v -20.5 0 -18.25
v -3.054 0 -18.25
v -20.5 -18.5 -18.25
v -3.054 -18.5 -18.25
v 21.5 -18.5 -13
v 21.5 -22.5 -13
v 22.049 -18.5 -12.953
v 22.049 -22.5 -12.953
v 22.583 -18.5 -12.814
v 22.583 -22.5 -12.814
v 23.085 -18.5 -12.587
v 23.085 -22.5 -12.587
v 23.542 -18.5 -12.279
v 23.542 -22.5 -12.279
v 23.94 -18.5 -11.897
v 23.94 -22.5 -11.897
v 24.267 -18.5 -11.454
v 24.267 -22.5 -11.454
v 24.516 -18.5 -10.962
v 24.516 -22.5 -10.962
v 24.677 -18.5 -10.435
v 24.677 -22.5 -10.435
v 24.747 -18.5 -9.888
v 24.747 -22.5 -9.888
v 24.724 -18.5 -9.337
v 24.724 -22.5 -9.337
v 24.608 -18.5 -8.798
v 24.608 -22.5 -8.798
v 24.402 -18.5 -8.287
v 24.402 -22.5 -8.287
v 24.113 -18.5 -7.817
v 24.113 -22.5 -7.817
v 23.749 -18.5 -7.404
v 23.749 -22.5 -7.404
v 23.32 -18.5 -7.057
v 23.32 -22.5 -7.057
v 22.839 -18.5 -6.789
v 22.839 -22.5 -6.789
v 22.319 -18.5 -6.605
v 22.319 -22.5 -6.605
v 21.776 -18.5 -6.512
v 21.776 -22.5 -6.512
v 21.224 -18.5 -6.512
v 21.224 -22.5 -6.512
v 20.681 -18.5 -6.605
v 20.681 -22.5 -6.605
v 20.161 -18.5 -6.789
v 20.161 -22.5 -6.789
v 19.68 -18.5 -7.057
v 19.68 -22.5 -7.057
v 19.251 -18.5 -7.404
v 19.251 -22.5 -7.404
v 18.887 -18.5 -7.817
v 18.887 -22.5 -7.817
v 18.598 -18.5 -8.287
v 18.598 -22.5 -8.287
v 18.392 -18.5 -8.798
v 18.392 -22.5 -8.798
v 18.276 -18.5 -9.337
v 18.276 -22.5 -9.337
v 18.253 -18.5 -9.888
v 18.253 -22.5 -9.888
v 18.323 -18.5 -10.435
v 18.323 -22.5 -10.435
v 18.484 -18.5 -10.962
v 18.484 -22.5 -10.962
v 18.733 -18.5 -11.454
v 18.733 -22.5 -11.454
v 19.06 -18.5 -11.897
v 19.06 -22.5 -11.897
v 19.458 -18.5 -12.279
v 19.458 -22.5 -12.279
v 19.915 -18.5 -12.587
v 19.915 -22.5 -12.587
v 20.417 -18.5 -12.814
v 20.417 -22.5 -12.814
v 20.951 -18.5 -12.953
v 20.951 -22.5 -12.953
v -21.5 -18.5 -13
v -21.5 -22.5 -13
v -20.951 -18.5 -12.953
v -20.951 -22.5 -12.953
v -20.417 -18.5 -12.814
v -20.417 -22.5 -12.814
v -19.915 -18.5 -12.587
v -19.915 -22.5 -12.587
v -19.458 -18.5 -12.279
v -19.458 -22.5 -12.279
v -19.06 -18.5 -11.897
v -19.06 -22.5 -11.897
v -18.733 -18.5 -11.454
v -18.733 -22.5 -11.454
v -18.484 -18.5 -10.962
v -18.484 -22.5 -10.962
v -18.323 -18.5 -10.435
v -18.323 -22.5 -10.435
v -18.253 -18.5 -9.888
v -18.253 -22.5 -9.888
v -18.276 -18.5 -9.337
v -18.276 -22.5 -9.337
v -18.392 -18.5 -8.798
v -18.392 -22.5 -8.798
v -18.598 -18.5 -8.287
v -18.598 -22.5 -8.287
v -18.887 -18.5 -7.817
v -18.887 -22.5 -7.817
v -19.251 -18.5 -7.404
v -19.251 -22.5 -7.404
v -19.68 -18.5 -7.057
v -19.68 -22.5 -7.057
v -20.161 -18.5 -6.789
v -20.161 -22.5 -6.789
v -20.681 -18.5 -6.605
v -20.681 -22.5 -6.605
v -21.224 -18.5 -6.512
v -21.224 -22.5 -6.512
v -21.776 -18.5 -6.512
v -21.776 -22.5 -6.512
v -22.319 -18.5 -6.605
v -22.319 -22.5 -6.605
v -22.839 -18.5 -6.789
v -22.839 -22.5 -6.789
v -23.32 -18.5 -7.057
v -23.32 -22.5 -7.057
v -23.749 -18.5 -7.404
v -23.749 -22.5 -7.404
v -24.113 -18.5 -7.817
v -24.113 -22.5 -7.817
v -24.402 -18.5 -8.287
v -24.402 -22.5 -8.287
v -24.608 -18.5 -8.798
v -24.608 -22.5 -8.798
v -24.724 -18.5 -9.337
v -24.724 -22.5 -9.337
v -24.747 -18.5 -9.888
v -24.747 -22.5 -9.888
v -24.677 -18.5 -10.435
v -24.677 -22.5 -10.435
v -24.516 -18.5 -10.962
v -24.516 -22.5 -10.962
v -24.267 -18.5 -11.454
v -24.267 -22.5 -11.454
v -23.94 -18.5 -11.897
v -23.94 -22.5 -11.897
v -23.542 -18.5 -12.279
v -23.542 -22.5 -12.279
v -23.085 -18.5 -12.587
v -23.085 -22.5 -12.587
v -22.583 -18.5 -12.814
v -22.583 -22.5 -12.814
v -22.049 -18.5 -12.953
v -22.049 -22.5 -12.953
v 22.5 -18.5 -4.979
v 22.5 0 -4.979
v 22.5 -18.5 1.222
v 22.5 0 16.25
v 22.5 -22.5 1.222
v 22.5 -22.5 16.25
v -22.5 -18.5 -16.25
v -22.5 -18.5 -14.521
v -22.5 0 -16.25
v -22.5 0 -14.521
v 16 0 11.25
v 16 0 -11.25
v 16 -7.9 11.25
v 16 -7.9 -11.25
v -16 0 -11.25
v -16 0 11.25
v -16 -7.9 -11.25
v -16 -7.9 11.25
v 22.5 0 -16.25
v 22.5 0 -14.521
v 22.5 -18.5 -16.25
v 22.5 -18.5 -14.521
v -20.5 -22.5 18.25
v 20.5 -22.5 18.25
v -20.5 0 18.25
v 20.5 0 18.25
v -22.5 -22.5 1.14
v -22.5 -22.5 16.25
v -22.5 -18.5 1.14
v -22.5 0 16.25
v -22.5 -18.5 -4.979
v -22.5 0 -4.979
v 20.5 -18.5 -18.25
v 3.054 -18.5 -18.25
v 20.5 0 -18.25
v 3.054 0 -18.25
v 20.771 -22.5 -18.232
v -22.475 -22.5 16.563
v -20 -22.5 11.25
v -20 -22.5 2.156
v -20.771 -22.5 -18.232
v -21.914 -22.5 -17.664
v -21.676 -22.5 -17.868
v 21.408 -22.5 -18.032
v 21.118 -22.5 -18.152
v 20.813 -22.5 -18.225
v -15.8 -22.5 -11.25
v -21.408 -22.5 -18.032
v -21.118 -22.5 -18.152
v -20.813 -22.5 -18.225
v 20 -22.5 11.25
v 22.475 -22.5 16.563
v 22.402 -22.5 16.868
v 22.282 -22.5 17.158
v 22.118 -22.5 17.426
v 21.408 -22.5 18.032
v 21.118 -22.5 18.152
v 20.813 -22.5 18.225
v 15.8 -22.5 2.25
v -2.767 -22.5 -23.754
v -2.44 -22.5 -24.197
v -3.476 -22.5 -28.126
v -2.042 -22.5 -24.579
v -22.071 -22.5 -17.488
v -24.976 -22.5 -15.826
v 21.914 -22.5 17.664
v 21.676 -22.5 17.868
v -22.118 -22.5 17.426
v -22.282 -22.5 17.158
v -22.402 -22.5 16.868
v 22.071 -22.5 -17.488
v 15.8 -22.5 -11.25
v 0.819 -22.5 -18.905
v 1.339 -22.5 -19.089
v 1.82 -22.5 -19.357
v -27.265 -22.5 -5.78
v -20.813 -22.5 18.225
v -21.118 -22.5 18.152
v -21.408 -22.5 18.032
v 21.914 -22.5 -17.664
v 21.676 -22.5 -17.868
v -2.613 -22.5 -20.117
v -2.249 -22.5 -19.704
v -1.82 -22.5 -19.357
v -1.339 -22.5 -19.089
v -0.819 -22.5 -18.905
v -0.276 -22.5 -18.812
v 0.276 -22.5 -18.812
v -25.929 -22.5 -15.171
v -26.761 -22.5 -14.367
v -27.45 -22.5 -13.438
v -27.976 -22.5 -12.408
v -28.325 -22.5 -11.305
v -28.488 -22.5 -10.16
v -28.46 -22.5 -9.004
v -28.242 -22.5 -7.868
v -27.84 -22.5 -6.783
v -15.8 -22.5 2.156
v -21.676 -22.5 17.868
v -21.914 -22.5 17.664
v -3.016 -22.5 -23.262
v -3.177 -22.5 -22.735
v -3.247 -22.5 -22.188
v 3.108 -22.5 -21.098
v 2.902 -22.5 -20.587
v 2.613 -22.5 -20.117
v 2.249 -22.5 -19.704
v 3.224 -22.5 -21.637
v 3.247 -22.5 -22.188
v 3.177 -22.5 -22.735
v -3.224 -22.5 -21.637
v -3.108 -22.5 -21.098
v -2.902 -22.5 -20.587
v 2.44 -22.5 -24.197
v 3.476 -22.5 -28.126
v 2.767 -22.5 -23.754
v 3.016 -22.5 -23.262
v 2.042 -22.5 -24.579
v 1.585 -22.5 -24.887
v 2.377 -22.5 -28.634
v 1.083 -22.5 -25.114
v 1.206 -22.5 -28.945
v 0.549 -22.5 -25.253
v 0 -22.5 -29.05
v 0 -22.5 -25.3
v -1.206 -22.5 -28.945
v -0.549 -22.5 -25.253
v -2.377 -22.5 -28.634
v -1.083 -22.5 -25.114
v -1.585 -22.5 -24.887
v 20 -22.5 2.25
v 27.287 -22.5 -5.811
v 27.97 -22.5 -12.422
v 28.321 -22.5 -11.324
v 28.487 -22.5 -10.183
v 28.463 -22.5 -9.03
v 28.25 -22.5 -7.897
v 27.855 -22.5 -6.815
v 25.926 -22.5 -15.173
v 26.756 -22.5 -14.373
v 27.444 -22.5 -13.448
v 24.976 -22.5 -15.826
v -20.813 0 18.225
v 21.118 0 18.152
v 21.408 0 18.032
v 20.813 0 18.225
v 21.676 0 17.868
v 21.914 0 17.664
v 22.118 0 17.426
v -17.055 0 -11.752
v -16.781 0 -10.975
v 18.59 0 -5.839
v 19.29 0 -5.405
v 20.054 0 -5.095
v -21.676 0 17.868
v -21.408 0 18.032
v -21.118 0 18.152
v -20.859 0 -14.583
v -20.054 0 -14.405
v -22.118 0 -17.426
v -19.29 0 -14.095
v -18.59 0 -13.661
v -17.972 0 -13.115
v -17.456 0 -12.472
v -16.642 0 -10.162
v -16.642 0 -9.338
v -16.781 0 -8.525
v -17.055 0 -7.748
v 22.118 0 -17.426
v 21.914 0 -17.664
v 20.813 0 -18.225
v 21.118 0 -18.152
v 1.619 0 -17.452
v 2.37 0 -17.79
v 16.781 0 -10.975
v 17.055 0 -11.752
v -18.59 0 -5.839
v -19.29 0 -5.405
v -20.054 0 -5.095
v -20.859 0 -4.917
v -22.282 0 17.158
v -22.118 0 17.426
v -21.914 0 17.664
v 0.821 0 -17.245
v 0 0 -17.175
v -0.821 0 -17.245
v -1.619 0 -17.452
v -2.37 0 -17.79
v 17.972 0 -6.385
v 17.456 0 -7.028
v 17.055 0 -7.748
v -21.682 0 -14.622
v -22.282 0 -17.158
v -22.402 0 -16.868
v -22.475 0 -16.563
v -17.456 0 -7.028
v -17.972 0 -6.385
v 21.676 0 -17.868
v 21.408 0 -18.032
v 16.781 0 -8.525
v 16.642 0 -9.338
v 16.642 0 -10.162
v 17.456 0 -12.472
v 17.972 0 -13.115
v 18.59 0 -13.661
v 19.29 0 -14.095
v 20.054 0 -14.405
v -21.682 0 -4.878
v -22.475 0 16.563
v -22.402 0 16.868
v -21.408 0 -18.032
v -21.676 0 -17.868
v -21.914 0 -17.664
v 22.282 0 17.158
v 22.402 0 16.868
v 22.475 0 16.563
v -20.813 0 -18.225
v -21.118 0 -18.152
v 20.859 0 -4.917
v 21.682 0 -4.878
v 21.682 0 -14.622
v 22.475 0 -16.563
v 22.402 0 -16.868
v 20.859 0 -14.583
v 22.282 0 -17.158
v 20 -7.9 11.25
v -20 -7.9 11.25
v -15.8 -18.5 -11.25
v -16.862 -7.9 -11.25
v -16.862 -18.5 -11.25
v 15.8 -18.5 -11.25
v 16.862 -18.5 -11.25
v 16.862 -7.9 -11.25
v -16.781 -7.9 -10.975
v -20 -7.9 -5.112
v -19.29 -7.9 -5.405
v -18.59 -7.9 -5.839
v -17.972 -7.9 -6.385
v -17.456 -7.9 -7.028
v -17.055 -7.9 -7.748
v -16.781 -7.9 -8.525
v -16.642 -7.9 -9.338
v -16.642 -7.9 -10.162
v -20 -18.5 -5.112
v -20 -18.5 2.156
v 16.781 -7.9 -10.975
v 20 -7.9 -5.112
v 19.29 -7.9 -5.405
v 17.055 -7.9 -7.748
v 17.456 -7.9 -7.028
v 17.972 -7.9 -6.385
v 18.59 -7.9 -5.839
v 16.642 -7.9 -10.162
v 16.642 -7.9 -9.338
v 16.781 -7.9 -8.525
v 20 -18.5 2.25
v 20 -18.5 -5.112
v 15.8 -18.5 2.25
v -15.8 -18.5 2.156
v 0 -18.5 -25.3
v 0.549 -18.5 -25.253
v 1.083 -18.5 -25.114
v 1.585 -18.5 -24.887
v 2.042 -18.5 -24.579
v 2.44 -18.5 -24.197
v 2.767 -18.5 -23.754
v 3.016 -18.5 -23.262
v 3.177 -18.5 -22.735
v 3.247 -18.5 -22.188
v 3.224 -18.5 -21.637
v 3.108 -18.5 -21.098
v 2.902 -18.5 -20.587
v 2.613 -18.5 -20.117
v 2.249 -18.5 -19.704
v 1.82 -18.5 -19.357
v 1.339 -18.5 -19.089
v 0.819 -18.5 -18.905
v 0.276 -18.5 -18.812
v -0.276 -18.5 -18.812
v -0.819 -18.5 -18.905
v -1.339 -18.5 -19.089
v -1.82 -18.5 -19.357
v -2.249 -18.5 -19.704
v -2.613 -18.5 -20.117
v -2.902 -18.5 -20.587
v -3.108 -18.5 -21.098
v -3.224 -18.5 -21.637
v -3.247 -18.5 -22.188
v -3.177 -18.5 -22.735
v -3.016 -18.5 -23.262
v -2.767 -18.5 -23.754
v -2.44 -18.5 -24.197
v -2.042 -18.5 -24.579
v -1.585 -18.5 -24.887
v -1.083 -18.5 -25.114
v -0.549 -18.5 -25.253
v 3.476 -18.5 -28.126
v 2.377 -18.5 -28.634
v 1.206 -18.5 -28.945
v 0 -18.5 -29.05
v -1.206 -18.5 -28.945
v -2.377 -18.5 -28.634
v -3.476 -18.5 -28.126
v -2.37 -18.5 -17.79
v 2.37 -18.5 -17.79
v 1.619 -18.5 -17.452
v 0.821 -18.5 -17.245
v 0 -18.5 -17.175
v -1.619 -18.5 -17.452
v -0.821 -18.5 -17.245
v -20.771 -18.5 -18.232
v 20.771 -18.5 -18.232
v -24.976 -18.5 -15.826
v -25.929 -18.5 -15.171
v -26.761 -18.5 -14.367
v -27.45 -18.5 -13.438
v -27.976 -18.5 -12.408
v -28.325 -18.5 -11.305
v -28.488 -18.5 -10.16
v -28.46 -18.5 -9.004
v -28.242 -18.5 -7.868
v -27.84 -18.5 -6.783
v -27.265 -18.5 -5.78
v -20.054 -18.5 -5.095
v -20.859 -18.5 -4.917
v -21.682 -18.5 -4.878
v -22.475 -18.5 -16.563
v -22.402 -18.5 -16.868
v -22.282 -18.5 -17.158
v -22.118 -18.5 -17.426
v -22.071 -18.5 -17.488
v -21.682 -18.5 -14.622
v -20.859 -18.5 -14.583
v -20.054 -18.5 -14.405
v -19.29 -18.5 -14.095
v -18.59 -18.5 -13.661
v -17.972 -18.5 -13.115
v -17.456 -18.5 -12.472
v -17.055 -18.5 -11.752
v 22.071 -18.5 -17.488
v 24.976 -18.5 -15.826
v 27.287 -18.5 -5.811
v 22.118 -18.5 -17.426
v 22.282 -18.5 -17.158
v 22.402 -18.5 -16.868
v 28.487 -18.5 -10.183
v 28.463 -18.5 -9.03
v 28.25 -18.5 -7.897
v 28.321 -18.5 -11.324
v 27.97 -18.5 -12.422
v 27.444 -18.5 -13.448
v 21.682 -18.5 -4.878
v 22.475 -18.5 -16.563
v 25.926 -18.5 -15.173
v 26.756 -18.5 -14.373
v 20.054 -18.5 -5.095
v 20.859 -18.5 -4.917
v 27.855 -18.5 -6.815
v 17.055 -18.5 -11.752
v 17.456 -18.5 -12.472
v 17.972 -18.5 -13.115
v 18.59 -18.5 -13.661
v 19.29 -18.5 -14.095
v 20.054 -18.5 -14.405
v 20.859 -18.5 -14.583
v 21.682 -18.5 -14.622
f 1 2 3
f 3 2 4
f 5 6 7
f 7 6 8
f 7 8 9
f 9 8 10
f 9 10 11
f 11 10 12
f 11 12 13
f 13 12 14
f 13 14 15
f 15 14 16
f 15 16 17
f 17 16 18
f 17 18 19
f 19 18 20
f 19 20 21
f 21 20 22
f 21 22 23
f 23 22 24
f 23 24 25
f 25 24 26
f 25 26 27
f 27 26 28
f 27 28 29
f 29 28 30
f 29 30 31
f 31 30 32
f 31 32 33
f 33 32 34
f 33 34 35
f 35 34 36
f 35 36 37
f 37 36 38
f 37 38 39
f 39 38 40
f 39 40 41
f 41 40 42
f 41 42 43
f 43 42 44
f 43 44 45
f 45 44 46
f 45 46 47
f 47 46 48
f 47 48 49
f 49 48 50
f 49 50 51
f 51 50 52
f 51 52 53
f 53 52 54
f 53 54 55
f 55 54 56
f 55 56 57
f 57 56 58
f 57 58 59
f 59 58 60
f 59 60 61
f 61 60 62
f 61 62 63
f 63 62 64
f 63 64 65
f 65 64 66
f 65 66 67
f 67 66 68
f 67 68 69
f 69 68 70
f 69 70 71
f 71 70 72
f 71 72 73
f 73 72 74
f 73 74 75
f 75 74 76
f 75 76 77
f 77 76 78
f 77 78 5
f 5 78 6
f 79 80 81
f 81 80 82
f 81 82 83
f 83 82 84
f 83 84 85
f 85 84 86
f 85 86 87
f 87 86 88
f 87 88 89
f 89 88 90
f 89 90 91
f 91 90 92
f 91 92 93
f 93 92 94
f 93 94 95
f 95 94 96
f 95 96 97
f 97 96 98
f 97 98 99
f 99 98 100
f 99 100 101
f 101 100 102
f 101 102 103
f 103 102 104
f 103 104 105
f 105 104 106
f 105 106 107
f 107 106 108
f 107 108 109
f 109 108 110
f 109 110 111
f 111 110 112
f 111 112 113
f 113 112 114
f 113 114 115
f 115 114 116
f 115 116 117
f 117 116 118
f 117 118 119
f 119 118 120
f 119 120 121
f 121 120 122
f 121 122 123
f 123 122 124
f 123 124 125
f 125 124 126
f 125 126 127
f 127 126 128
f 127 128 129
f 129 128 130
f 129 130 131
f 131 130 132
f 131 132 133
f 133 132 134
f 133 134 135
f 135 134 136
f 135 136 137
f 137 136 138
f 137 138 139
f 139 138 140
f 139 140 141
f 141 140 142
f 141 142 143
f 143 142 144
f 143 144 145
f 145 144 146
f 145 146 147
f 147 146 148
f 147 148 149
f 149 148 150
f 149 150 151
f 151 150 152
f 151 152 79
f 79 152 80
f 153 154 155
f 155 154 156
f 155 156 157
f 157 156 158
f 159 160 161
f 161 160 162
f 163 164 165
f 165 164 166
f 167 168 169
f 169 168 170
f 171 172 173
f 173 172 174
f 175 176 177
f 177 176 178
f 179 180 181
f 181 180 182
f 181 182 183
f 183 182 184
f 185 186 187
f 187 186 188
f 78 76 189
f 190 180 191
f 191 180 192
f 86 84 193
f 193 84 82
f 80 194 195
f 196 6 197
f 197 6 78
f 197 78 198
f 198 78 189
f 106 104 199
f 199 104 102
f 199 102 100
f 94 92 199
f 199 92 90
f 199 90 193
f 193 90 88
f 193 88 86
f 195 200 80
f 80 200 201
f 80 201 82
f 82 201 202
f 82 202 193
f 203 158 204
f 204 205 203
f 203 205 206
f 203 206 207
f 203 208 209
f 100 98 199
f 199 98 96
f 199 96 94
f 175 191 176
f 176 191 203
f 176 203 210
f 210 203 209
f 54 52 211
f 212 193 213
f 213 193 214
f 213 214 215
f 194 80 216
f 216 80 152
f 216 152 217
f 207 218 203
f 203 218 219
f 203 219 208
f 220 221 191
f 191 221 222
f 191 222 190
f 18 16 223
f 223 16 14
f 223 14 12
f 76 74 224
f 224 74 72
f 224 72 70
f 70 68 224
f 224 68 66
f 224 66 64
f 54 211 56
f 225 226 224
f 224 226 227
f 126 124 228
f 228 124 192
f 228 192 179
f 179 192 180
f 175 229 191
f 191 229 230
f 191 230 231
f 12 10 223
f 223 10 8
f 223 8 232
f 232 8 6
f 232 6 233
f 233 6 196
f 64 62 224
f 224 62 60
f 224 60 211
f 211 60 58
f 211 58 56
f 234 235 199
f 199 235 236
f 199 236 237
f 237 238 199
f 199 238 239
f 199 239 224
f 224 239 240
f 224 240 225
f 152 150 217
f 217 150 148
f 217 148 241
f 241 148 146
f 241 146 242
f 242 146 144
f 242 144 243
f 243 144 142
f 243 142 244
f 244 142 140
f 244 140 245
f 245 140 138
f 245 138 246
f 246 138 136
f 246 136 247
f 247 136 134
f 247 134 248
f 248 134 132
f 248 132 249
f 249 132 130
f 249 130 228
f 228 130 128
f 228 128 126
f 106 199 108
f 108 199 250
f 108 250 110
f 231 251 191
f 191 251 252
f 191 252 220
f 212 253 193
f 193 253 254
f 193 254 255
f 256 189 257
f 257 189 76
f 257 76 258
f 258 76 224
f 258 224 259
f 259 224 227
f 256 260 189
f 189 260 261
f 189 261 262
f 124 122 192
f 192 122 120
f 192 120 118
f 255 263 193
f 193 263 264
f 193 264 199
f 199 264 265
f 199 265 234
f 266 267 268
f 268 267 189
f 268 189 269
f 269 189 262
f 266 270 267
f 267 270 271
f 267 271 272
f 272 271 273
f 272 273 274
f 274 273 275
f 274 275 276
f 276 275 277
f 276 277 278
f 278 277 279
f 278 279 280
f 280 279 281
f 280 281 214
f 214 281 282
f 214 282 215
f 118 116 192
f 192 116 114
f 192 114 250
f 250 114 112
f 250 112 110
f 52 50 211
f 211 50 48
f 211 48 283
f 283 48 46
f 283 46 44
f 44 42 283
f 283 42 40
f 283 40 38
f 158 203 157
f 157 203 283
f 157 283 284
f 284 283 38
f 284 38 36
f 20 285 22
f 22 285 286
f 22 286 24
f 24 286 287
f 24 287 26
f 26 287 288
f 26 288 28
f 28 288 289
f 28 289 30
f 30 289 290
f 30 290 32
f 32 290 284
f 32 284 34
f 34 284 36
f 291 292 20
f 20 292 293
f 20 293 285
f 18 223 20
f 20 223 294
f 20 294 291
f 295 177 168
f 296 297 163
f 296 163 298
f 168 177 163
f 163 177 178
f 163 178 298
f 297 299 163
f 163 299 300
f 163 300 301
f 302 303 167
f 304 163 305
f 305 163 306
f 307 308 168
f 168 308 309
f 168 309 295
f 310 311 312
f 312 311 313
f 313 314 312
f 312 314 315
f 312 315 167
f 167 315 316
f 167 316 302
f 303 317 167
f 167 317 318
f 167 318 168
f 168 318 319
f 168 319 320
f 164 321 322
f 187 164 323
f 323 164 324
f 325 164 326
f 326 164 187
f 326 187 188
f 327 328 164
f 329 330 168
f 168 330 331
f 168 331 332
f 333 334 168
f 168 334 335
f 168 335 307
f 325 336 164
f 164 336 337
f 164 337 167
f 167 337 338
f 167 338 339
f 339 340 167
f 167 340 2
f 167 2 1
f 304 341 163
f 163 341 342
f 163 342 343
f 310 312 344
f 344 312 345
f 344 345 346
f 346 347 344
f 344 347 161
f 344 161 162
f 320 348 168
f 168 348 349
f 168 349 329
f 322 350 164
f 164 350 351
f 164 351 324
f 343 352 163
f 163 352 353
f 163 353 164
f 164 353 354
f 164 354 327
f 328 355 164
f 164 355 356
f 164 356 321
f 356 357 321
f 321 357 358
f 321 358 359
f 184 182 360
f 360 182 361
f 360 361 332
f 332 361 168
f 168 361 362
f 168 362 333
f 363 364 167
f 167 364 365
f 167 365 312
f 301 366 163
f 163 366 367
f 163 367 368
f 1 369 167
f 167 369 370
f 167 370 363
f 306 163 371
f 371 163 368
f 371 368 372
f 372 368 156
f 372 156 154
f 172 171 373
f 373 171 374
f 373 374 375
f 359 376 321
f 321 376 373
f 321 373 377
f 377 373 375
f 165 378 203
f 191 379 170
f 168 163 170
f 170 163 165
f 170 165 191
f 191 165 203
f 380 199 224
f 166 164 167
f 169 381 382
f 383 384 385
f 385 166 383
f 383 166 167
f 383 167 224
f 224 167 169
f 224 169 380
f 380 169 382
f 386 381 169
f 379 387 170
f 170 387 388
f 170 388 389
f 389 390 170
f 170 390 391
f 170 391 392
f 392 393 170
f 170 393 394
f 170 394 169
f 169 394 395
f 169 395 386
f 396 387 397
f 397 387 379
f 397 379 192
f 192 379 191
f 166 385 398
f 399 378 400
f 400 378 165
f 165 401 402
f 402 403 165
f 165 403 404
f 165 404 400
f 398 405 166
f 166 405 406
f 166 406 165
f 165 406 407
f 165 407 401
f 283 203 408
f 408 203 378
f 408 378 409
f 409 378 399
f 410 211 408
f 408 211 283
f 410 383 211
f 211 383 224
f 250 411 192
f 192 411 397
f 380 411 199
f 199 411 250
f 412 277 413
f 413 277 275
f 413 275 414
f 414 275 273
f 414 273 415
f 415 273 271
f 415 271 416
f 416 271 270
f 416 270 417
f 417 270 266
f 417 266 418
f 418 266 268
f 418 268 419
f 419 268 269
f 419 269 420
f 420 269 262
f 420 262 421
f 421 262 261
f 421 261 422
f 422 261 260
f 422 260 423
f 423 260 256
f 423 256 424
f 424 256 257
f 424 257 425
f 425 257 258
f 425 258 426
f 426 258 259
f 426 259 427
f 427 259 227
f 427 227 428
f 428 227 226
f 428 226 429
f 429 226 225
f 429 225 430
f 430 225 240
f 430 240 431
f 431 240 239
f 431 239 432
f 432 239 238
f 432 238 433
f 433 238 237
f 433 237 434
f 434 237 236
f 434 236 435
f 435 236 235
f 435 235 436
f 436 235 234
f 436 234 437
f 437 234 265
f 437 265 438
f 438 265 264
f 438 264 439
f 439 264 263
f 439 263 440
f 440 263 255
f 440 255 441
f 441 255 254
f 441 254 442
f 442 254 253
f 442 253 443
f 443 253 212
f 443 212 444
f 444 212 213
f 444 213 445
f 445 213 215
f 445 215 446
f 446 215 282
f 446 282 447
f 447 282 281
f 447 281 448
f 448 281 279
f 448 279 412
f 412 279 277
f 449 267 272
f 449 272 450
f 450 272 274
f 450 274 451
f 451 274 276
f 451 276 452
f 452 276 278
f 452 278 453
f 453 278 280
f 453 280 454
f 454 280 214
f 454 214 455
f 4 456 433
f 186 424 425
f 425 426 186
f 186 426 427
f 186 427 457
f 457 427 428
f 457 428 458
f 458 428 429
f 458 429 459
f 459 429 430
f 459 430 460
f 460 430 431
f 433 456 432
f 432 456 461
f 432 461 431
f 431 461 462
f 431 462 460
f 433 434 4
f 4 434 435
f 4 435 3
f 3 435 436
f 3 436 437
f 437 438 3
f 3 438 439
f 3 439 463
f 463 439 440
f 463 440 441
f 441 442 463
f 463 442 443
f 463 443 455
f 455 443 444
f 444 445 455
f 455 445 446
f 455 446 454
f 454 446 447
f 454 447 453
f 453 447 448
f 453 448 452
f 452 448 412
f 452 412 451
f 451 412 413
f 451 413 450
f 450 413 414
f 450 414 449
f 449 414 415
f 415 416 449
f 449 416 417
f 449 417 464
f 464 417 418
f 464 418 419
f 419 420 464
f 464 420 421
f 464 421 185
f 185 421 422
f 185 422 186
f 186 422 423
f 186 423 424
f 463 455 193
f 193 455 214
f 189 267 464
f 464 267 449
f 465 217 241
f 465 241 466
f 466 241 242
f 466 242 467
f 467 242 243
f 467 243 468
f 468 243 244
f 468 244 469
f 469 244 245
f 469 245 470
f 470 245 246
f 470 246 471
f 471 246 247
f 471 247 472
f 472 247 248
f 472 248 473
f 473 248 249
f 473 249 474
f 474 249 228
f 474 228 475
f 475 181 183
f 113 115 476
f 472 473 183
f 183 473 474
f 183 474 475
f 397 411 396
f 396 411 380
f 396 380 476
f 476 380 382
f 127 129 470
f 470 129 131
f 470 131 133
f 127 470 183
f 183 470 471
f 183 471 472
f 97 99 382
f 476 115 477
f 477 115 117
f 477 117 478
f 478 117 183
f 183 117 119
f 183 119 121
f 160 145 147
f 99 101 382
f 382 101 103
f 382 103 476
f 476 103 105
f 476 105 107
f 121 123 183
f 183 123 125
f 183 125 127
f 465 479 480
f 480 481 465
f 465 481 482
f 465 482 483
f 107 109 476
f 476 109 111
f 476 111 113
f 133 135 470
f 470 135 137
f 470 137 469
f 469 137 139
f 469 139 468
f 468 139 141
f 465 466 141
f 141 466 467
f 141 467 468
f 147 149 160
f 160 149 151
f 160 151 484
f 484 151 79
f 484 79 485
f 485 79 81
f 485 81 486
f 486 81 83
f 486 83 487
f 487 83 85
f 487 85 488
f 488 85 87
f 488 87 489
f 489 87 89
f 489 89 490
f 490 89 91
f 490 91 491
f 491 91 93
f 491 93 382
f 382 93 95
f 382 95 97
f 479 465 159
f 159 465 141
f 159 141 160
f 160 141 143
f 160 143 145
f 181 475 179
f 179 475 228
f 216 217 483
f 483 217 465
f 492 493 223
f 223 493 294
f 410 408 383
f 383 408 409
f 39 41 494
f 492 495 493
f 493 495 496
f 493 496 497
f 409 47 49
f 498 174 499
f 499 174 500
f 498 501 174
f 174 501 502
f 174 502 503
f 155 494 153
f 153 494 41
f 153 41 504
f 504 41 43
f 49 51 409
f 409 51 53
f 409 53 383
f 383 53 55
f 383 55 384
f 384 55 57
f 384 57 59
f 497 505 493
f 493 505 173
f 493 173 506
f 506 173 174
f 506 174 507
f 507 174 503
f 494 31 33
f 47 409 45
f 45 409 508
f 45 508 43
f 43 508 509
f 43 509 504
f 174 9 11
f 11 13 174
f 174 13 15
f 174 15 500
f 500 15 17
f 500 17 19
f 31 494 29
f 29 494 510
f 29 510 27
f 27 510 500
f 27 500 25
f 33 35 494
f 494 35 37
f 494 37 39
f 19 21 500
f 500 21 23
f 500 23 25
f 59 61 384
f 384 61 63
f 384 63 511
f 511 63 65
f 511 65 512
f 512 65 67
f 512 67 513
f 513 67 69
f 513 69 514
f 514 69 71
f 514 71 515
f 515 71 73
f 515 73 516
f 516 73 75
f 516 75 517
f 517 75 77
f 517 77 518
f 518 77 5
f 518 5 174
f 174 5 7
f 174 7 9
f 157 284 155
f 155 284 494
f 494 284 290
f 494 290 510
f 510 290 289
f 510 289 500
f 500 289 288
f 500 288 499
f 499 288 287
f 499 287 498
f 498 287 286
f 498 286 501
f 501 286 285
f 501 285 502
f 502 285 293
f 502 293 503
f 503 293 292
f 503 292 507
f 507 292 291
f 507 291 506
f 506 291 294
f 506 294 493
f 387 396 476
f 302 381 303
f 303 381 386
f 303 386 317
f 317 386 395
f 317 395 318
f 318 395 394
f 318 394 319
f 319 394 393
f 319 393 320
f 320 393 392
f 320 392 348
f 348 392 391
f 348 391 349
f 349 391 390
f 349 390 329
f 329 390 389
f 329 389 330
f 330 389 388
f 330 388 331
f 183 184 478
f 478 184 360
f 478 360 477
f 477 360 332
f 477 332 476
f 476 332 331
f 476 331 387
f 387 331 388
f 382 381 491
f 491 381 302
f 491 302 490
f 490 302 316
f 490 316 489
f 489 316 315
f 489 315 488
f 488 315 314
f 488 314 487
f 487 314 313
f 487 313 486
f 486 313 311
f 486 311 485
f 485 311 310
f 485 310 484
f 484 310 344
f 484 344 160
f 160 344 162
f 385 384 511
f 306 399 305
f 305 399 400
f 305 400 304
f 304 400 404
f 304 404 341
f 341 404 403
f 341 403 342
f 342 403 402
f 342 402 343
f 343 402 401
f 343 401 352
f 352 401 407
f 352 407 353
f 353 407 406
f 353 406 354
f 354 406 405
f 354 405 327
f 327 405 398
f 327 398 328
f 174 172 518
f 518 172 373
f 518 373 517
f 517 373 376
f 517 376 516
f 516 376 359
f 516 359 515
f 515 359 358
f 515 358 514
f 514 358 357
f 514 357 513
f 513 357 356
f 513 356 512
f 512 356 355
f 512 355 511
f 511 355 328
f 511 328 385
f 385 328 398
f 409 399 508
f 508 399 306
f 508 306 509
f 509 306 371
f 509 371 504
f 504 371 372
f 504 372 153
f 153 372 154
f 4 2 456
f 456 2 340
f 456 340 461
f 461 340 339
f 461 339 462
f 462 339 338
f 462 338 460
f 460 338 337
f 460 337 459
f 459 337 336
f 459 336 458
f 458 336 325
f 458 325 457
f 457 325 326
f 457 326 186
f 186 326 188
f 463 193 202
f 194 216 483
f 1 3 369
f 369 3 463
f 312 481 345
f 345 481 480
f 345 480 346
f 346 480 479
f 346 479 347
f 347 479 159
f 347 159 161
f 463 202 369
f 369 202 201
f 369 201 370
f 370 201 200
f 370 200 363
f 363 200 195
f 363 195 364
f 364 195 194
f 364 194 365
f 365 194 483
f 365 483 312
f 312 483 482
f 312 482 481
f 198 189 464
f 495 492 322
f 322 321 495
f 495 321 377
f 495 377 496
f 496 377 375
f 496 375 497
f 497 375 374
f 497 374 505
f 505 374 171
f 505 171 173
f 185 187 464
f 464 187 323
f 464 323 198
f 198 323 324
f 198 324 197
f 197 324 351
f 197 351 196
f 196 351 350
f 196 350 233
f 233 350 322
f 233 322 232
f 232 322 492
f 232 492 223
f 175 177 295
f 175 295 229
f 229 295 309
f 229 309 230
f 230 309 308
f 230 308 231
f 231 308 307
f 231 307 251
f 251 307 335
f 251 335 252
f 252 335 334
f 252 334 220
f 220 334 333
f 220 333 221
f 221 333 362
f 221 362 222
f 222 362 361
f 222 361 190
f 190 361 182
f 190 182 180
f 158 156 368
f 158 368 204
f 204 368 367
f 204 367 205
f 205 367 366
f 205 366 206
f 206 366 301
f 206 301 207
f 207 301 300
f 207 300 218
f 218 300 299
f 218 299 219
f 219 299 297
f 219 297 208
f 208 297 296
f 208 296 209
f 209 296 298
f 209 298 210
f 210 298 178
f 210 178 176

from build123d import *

# Parameters (mm, degrees)
SKETCH2_W           = 45
SKETCH2_H           = 36.5
SKETCH2_W_2         = 32
SKETCH2_H_2         = 22.5
BOSS_EXTRUDE2_DEPTH = 22.5
SKETCH3_W           = 40
SKETCH3_H           = 22.5
CUT_EXTRUDE1_DEPTH  = 33.441832562
SKETCH5_R           = 3.25
BOSS_EXTRUDE3_DEPTH = 4
SKETCH7_R           = 3.25
CUT_EXTRUDE2_DEPTH  = 47.501639756
CUT_EXTRUDE3_START  = -18.5
SKETCH8_R           = 4.875
CUT_EXTRUDE3_DEPTH  = 18.5
FILLET1_R           = 2


with BuildPart() as part:
    # Sketch2 → Boss-Extrude2 (new body)
    with BuildSketch(Plane(origin=(0, 0, 0), x_dir=(1, 0, 0), z_dir=(0, 1, 0))):
        Rectangle(SKETCH2_W, SKETCH2_H)
        Rectangle(SKETCH2_W_2, SKETCH2_H_2, mode=Mode.SUBTRACT)
    extrude(amount=-BOSS_EXTRUDE2_DEPTH)

    # Sketch3 → Cut-Extrude1 (cut, through all)
    with BuildSketch(Plane(origin=(0, -7.9, 0), x_dir=(1, 0, 0), z_dir=(0, 1, 0))):
        Rectangle(SKETCH3_W, SKETCH3_H)
    extrude(amount=-CUT_EXTRUDE1_DEPTH, mode=Mode.SUBTRACT)

    # Sketch5 → Boss-Extrude3 (add)
    with BuildSketch(Plane(origin=(0, -22.5, 0), x_dir=(-1, 0, 0), z_dir=(0, -1, 0))):
        with BuildLine():
            Line((-24.976015549, 15.825962138), (-3.476015549, 28.125962138))
            ThreePointArc((-3.476015549, 28.125962138), (0, 29.05), (3.476015549, 28.125962138))
            Line((3.476015549, 28.125962138), (24.976015549, 15.825962138))
            ThreePointArc((24.976015549, 15.825962138), (28.325069482, 11.305129115), (27.265115511, 5.779679718))
            Line((27.265115511, 5.779679718), (21.8, -2.155957702))
            Line((21.8, -2.155957702), (15.8, -2.155957702))
            Line((15.8, -2.155957702), (15.8, 11.25))
            Line((15.8, 11.25), (-15.8, 11.25))
            Line((-15.8, 11.25), (-15.8, -2.25))
            Line((-15.8, -2.25), (-21.8, -2.25))
            Line((-21.8, -2.25), (-27.28678918, 5.811336396))
            ThreePointArc((-27.28678918, 5.811336396), (-28.320782217, 11.323826531), (-24.976015549, 15.825962138))
        make_face()
        with Locations((21.5, 9.75)):
            Circle(SKETCH5_R, mode=Mode.SUBTRACT)
        with Locations((-21.5, 9.75)):
            Circle(SKETCH5_R, mode=Mode.SUBTRACT)
        with Locations(Location((0, 22.05, 0), (0, 0, 90))):
            Circle(SKETCH5_R, mode=Mode.SUBTRACT)
    extrude(amount=-BOSS_EXTRUDE3_DEPTH)

    # Sketch7 → Cut-Extrude2 (cut, through all)
    with BuildSketch(Plane(origin=(0, -22.5, 0), x_dir=(-1, 0, 0), z_dir=(0, -1, 0))):
        with Locations(Location((-21.5, 9.75, 0), (0, 0, 90))):
            Circle(SKETCH7_R)
        with Locations(Location((0, 22.05, 0), (0, 0, 90))):
            Circle(SKETCH7_R)
        with Locations(Location((21.5, 9.75, 0), (0, 0, 90))):
            Circle(SKETCH7_R)
    extrude(amount=-CUT_EXTRUDE2_DEPTH, mode=Mode.SUBTRACT)

    # Sketch8 → Cut-Extrude3 (cut)
    with BuildSketch(Plane(origin=(0, 0, 0), x_dir=(1, 0, 0), z_dir=(0, 1, 0)).offset(CUT_EXTRUDE3_START)):
        with Locations((0, 22.05)):
            Circle(SKETCH8_R)
        with Locations((-21.5, 9.75)):
            Circle(SKETCH8_R)
        with Locations((21.5, 9.75)):
            Circle(SKETCH8_R)
    extrude(amount=CUT_EXTRUDE3_DEPTH, mode=Mode.SUBTRACT)

    # Fillet1
    # the kernel refuses this fillet: 2 mm, written as the material it takes off along each edge
    with BuildSketch(Plane(origin=(-22.5, 5, -18.25), x_dir=(1, 0, 0), z_dir=(0, -1, 0))) as fillet1_piece_1_section:
        with BuildLine():
            CenterArc((FILLET1_R, FILLET1_R), FILLET1_R, 180, 90)
            Line((0, FILLET1_R), (0, 0))
            Line((0, 0), (FILLET1_R, 0))
        make_face()
    fillet1_piece_1 = extrude(amount=32.5, mode=Mode.PRIVATE)
    fillet1_piece_1 = split(fillet1_piece_1, bisect_by=Plane(origin=(-20.691017739, -18.5, -18.244599527), z_dir=(0, 1, 0)), keep=Keep.TOP, mode=Mode.PRIVATE)
    add(fillet1_piece_1, mode=Mode.SUBTRACT)
    with BuildSketch(Plane(origin=(-22.5, 5, -18.25), x_dir=(1, 0, 0), z_dir=(0, -1, 0))) as fillet1_piece_2_section:
        with BuildLine():
            CenterArc((FILLET1_R, FILLET1_R), FILLET1_R, 180, 90)
            Line((0, FILLET1_R), (0, 0))
            Line((0, 0), (FILLET1_R, 0))
        make_face()
    fillet1_piece_2 = extrude(amount=32.5, mode=Mode.PRIVATE)
    fillet1_piece_2 = split(fillet1_piece_2, bisect_by=Plane(origin=(-21.836723919, -20.5, -17.621928978), z_dir=(-0.49657364983015595, 0, -0.8679945911665335)), keep=Keep.TOP, mode=Mode.PRIVATE)
    add(fillet1_piece_2, mode=Mode.SUBTRACT)
    with BuildSketch(Plane(origin=(22.5, 5, -18.25), x_dir=(0, 0, 1), z_dir=(0, -1, 0))) as fillet1_piece_3_section:
        with BuildLine():
            CenterArc((FILLET1_R, FILLET1_R), FILLET1_R, 180, 90)
            Line((0, FILLET1_R), (0, 0))
            Line((0, 0), (FILLET1_R, 0))
        make_face()
    fillet1_piece_3 = extrude(amount=32.5, mode=Mode.PRIVATE)
    fillet1_piece_3 = split(fillet1_piece_3, bisect_by=Plane(origin=(22.38175336, -18.5, -17.085383577), z_dir=(0, 1, 0)), keep=Keep.TOP, mode=Mode.PRIVATE)
    add(fillet1_piece_3, mode=Mode.SUBTRACT)
    with BuildSketch(Plane(origin=(22.5, 5, -18.25), x_dir=(0, 0, 1), z_dir=(0, -1, 0))) as fillet1_piece_4_section:
        with BuildLine():
            CenterArc((FILLET1_R, FILLET1_R), FILLET1_R, 180, 90)
            Line((0, FILLET1_R), (0, 0))
            Line((0, 0), (FILLET1_R, 0))
        make_face()
    fillet1_piece_4 = extrude(amount=32.5, mode=Mode.PRIVATE)
    fillet1_piece_4 = split(fillet1_piece_4, bisect_by=Plane(origin=(21.836723919, -20.5, -17.621928978), z_dir=(0.49657364983015595, 0, -0.8679945911665338)), keep=Keep.TOP, mode=Mode.PRIVATE)
    add(fillet1_piece_4, mode=Mode.SUBTRACT)
    with BuildSketch(Plane(origin=(-22.5, 5, 18.25), x_dir=(1, 0, 0), z_dir=(0, -1, 0)), Plane(origin=(22.5, 5, 18.25), x_dir=(0, 0, -1), z_dir=(0, -1, 0))) as fillet1_piece_5:
        with BuildLine():
            CenterArc((FILLET1_R, -FILLET1_R), FILLET1_R, 90, 90)
            Line((0, -FILLET1_R), (0, 0))
            Line((0, 0), (FILLET1_R, 0))
        make_face()
    extrude(amount=32.5, mode=Mode.SUBTRACT)


solid = part.part
